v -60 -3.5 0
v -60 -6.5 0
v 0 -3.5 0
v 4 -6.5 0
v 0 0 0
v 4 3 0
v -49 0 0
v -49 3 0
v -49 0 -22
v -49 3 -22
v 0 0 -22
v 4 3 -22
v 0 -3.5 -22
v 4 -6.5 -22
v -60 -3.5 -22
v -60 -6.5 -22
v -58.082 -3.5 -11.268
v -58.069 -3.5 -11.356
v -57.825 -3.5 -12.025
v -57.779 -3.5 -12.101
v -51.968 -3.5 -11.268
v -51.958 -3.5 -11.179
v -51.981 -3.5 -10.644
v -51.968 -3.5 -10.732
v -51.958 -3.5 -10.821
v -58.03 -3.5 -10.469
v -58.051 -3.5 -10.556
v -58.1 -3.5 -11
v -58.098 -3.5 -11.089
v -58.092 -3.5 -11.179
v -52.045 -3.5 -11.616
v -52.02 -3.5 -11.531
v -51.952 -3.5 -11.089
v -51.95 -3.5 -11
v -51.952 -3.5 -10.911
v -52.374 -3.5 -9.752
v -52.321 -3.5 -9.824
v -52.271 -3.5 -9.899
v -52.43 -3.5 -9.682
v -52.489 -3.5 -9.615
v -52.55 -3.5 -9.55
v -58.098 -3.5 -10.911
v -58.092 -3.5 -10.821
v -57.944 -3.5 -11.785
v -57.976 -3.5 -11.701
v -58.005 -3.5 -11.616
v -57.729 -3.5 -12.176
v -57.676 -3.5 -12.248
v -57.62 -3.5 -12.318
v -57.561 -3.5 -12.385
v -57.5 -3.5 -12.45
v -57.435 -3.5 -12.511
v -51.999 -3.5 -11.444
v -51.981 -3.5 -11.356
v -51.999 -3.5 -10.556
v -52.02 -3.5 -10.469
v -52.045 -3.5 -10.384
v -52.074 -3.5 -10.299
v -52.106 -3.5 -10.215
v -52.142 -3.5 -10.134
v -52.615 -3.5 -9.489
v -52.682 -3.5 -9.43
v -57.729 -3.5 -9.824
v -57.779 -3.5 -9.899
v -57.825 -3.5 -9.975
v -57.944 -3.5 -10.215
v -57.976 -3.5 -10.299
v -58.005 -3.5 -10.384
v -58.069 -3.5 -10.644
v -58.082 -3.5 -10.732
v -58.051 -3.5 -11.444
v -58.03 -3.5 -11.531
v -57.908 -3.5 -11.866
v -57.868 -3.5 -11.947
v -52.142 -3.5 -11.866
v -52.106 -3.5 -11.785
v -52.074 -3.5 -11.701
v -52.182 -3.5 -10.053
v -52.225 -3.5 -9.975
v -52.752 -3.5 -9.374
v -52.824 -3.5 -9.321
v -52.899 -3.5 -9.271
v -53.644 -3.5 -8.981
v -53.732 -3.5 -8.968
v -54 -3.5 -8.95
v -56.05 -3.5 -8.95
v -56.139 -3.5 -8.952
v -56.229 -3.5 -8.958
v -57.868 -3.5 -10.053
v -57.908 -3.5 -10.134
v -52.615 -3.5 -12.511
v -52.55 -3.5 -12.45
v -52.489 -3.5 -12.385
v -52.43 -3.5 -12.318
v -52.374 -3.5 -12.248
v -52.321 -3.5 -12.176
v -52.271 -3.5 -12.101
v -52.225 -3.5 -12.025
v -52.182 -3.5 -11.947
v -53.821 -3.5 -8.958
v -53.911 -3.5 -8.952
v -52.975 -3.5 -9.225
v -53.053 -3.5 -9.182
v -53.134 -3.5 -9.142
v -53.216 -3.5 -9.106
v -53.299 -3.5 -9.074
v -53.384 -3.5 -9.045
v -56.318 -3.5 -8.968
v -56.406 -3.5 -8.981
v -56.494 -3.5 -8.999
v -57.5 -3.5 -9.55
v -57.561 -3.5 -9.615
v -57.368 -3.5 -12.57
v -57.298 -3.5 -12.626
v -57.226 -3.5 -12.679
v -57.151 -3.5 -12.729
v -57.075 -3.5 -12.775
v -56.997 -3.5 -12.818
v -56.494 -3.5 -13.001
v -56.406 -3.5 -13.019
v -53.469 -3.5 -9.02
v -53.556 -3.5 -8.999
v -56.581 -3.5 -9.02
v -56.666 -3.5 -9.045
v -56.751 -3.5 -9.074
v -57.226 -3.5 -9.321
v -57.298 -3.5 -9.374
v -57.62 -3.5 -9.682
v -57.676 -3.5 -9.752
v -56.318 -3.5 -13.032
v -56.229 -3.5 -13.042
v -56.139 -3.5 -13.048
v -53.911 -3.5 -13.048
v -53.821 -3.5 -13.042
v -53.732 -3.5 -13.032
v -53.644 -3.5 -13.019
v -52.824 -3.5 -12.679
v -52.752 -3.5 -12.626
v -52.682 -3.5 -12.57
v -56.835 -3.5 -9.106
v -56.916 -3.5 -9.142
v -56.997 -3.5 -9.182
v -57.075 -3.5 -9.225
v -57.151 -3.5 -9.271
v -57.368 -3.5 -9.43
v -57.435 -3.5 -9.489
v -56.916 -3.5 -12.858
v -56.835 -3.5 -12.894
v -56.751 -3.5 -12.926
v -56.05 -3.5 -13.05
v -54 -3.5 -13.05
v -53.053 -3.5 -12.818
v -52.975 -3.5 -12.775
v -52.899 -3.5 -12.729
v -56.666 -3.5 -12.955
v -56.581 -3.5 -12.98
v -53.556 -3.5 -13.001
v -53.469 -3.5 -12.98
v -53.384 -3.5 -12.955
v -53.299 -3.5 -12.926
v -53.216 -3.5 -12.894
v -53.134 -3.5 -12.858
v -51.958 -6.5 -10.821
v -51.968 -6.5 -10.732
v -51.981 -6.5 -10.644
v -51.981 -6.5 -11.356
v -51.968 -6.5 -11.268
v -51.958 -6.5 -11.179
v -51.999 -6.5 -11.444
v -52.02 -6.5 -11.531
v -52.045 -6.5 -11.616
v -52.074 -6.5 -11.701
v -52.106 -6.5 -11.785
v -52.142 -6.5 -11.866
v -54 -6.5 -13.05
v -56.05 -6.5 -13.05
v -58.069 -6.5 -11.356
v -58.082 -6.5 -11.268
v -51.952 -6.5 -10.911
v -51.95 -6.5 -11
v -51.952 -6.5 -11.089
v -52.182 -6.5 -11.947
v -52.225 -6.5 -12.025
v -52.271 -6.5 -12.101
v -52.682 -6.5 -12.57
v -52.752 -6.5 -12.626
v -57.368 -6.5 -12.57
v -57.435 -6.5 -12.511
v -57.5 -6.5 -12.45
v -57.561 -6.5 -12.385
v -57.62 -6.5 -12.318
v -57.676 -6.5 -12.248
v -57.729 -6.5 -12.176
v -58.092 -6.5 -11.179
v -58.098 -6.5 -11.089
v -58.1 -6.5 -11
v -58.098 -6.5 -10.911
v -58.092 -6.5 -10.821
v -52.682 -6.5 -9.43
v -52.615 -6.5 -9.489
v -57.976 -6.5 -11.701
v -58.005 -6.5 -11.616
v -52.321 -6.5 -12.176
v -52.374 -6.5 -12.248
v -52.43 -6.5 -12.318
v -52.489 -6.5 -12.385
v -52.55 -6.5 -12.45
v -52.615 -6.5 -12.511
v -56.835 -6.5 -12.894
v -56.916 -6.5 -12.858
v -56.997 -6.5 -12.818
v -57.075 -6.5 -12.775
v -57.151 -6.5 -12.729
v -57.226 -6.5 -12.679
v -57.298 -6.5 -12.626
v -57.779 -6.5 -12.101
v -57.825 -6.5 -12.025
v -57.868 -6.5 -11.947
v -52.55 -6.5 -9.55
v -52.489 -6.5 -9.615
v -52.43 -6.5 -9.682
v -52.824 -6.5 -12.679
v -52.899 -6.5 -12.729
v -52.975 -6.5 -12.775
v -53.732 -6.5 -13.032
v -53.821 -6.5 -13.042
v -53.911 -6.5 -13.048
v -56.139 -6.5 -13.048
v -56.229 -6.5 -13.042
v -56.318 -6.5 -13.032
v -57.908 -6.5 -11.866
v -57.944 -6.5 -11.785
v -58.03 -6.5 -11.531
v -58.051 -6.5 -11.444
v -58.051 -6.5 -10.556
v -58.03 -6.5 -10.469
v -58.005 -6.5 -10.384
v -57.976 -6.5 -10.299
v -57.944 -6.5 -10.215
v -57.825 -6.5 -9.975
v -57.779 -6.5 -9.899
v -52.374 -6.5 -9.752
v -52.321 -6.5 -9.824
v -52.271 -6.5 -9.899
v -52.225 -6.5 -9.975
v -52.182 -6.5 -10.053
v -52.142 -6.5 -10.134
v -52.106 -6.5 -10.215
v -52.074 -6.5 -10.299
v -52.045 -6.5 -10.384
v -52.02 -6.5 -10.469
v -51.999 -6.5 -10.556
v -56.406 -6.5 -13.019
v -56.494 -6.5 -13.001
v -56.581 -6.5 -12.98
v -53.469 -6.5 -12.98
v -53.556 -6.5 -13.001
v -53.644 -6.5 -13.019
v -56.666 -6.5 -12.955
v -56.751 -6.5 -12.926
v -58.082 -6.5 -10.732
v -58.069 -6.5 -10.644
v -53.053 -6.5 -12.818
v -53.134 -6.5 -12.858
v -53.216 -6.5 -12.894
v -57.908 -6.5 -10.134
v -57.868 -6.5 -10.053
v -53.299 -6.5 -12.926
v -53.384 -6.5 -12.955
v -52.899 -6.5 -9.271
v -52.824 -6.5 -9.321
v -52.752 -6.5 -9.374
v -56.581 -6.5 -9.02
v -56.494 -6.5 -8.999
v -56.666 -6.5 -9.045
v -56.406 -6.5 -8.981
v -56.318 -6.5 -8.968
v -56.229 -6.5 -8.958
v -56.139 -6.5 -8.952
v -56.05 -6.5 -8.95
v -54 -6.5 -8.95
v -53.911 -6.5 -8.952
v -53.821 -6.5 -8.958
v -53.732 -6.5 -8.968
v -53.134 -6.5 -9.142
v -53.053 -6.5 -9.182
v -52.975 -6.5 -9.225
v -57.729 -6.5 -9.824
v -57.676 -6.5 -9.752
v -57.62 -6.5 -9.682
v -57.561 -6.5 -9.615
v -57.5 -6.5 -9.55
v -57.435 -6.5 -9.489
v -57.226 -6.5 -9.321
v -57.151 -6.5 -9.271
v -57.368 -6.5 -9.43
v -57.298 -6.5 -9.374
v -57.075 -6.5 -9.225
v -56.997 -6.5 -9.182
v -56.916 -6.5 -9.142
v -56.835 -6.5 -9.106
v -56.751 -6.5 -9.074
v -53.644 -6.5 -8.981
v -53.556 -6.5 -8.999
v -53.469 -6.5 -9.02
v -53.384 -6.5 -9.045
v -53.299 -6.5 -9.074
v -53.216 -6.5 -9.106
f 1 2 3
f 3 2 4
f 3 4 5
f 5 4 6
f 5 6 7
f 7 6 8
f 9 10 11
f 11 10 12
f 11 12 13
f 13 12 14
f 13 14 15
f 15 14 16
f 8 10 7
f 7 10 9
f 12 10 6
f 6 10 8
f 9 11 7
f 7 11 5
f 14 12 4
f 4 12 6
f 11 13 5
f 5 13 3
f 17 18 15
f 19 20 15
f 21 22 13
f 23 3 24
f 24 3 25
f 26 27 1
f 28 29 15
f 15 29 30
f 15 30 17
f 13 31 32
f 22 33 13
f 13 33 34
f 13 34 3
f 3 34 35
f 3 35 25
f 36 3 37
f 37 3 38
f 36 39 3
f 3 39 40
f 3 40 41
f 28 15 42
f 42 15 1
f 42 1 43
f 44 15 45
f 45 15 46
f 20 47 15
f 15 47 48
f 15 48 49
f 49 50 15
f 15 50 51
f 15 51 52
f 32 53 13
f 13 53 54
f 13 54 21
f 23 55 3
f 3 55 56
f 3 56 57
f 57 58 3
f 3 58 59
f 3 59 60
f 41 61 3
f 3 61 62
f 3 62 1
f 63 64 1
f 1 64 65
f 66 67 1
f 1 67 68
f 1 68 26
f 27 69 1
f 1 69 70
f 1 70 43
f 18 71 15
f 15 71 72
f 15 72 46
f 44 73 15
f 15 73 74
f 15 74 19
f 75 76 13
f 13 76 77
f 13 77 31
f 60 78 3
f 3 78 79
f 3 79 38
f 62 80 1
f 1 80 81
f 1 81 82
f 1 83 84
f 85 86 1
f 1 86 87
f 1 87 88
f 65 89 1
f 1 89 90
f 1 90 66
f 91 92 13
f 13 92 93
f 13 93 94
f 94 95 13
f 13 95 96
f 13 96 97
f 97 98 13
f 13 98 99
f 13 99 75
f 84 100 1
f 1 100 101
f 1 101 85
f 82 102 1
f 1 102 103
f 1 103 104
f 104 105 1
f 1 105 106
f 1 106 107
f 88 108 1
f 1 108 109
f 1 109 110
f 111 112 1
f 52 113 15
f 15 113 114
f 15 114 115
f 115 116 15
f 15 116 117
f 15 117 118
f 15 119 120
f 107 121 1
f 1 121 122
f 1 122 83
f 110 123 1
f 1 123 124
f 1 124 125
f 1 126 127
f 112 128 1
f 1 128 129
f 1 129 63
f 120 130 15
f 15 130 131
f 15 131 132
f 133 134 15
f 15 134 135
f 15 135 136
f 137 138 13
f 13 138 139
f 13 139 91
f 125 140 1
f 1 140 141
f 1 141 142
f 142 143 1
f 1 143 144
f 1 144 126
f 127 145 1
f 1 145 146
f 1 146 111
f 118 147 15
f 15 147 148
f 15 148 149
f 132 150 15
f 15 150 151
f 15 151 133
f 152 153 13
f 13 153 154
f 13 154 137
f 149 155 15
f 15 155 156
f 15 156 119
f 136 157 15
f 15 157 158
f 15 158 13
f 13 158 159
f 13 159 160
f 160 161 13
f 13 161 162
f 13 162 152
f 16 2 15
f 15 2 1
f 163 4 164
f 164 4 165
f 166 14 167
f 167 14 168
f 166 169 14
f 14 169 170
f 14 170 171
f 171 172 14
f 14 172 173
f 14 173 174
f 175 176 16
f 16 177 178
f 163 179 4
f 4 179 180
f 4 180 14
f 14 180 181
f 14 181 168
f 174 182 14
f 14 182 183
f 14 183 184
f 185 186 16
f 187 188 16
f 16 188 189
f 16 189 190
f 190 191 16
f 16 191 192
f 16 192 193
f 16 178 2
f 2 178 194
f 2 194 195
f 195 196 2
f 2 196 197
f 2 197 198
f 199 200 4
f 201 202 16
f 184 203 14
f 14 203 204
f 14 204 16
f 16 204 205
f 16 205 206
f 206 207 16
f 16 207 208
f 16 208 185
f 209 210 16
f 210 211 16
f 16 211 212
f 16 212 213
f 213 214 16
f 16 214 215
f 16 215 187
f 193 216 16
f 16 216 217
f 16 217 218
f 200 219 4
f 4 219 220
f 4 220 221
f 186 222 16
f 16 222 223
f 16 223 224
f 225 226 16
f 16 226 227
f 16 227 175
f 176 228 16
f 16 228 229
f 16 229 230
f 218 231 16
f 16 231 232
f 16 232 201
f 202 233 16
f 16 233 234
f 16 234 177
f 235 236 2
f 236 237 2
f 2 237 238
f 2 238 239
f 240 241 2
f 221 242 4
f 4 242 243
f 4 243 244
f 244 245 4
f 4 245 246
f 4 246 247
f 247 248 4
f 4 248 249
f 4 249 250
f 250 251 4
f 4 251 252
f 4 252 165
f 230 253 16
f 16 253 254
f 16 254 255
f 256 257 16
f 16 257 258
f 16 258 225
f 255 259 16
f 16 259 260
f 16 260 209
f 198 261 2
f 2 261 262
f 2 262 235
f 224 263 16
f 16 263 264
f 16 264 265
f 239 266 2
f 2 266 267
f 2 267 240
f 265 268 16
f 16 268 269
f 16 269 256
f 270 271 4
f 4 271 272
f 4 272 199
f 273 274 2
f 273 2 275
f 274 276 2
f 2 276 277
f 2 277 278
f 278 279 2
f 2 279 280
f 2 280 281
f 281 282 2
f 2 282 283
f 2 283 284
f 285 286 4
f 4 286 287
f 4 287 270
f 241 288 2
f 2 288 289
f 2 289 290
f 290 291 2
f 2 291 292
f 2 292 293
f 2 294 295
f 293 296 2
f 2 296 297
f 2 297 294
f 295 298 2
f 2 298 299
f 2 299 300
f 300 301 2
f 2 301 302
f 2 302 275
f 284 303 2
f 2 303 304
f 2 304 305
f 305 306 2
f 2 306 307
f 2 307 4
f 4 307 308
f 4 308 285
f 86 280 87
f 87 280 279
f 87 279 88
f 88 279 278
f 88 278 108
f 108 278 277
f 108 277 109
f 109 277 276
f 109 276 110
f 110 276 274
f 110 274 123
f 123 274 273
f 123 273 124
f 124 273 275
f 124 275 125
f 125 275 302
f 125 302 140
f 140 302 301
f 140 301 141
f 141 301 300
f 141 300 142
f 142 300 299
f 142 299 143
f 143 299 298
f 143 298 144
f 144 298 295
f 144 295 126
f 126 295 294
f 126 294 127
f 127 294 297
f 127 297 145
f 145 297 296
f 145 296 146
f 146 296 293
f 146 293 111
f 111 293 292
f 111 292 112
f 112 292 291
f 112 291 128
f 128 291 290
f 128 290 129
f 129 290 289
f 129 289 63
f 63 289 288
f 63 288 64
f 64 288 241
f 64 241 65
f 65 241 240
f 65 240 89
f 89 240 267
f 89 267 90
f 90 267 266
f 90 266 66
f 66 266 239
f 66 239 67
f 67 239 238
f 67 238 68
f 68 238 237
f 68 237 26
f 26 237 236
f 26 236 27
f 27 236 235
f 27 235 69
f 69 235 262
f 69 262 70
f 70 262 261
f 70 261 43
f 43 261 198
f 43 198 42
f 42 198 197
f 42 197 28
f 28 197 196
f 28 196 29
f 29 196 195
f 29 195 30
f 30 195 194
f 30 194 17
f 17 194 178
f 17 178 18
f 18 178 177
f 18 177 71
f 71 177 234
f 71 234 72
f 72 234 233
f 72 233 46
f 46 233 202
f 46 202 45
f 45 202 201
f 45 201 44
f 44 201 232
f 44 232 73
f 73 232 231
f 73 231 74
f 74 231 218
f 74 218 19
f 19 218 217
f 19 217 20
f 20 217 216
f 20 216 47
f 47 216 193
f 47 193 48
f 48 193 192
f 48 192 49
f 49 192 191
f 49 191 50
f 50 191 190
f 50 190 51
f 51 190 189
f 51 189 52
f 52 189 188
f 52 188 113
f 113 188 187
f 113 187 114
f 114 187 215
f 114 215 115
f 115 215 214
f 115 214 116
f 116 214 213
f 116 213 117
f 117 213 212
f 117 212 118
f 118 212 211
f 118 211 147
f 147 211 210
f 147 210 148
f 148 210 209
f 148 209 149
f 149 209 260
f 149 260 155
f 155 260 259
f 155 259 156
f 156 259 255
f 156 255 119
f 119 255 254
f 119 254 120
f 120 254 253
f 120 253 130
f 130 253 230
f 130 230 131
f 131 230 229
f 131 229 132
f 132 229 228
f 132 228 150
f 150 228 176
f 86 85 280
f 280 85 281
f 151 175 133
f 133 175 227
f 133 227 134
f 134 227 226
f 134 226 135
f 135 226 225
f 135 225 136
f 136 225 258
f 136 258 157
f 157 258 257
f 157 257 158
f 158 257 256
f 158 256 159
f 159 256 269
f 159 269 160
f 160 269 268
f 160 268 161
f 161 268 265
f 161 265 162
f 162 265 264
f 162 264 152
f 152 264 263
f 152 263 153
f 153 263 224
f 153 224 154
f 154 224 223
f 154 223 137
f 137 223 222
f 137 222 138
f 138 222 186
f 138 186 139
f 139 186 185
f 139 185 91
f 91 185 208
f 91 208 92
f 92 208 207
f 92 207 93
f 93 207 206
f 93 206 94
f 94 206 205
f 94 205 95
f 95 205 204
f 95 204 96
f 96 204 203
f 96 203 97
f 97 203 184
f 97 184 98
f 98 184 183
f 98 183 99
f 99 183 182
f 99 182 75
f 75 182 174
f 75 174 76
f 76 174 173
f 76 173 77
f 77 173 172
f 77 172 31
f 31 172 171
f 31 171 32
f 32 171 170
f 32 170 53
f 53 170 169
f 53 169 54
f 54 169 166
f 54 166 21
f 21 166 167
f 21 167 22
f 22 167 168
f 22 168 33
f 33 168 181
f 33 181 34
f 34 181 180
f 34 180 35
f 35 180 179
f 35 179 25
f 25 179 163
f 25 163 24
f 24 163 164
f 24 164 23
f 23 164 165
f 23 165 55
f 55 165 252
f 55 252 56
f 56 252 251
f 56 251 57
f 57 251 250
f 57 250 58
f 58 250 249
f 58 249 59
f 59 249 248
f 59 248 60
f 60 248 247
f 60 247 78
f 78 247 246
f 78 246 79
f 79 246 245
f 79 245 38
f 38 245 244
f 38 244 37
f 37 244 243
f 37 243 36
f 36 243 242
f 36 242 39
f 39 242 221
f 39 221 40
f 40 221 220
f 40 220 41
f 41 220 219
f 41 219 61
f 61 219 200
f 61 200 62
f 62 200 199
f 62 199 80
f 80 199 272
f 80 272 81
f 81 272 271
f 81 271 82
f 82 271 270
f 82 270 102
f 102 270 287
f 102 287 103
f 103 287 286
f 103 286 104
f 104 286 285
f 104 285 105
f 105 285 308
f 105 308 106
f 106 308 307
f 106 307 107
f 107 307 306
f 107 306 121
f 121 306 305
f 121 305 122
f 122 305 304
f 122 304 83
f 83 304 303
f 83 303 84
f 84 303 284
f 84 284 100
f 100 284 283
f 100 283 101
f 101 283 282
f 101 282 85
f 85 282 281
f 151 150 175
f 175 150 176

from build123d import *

# Parameters (mm, degrees)
SKETCH1_W           = 49
SKETCH1_H           = 22
BOSS_EXTRUDE1_DEPTH = 3
BOSS_EXTRUDE2_DEPTH = 22
BOSS_EXTRUDE3_DEPTH = 3
CUT_EXTRUDE1_DEPTH  = 3


with BuildPart() as part:
    # Sketch1 → Boss-Extrude1 (new body)
    with BuildSketch(Plane(origin=(0, 0, 0), x_dir=(1, 0, 0), z_dir=(0, 1, 0))):
        with Locations((-24.5, 11)):
            Rectangle(SKETCH1_W, SKETCH1_H)
    extrude(amount=BOSS_EXTRUDE1_DEPTH)

    # Sketch2 → Boss-Extrude2 (add)
    with BuildSketch(Plane.XY):
        Polygon((0, 0), (0, -3.5), (4, -3.5), (4, 3), (0, 3), align=None)
    extrude(amount=-BOSS_EXTRUDE2_DEPTH)

    # Sketch3 → Boss-Extrude3 (add)
    with BuildSketch(Plane.XZ.offset(3.5)):
        Polygon((0, 0), (-60, 0), (-60, -22), (0, -22), (4, -22), (4, 0), align=None)
    extrude(amount=BOSS_EXTRUDE3_DEPTH)

    # Sketch4 → Cut-Extrude1 (cut)
    with BuildSketch(Plane.XZ.offset(6.5)):
        with BuildLine():
            Line((-56.05, -8.95), (-54, -8.95))
            ThreePointArc((-54, -8.95), (-51.95, -11), (-54, -13.05))
            Line((-54, -13.05), (-56.05, -13.05))
            ThreePointArc((-56.05, -13.05), (-58.1, -11), (-56.05, -8.95))
        make_face()
    extrude(amount=-CUT_EXTRUDE1_DEPTH, mode=Mode.SUBTRACT)


solid = part.part
